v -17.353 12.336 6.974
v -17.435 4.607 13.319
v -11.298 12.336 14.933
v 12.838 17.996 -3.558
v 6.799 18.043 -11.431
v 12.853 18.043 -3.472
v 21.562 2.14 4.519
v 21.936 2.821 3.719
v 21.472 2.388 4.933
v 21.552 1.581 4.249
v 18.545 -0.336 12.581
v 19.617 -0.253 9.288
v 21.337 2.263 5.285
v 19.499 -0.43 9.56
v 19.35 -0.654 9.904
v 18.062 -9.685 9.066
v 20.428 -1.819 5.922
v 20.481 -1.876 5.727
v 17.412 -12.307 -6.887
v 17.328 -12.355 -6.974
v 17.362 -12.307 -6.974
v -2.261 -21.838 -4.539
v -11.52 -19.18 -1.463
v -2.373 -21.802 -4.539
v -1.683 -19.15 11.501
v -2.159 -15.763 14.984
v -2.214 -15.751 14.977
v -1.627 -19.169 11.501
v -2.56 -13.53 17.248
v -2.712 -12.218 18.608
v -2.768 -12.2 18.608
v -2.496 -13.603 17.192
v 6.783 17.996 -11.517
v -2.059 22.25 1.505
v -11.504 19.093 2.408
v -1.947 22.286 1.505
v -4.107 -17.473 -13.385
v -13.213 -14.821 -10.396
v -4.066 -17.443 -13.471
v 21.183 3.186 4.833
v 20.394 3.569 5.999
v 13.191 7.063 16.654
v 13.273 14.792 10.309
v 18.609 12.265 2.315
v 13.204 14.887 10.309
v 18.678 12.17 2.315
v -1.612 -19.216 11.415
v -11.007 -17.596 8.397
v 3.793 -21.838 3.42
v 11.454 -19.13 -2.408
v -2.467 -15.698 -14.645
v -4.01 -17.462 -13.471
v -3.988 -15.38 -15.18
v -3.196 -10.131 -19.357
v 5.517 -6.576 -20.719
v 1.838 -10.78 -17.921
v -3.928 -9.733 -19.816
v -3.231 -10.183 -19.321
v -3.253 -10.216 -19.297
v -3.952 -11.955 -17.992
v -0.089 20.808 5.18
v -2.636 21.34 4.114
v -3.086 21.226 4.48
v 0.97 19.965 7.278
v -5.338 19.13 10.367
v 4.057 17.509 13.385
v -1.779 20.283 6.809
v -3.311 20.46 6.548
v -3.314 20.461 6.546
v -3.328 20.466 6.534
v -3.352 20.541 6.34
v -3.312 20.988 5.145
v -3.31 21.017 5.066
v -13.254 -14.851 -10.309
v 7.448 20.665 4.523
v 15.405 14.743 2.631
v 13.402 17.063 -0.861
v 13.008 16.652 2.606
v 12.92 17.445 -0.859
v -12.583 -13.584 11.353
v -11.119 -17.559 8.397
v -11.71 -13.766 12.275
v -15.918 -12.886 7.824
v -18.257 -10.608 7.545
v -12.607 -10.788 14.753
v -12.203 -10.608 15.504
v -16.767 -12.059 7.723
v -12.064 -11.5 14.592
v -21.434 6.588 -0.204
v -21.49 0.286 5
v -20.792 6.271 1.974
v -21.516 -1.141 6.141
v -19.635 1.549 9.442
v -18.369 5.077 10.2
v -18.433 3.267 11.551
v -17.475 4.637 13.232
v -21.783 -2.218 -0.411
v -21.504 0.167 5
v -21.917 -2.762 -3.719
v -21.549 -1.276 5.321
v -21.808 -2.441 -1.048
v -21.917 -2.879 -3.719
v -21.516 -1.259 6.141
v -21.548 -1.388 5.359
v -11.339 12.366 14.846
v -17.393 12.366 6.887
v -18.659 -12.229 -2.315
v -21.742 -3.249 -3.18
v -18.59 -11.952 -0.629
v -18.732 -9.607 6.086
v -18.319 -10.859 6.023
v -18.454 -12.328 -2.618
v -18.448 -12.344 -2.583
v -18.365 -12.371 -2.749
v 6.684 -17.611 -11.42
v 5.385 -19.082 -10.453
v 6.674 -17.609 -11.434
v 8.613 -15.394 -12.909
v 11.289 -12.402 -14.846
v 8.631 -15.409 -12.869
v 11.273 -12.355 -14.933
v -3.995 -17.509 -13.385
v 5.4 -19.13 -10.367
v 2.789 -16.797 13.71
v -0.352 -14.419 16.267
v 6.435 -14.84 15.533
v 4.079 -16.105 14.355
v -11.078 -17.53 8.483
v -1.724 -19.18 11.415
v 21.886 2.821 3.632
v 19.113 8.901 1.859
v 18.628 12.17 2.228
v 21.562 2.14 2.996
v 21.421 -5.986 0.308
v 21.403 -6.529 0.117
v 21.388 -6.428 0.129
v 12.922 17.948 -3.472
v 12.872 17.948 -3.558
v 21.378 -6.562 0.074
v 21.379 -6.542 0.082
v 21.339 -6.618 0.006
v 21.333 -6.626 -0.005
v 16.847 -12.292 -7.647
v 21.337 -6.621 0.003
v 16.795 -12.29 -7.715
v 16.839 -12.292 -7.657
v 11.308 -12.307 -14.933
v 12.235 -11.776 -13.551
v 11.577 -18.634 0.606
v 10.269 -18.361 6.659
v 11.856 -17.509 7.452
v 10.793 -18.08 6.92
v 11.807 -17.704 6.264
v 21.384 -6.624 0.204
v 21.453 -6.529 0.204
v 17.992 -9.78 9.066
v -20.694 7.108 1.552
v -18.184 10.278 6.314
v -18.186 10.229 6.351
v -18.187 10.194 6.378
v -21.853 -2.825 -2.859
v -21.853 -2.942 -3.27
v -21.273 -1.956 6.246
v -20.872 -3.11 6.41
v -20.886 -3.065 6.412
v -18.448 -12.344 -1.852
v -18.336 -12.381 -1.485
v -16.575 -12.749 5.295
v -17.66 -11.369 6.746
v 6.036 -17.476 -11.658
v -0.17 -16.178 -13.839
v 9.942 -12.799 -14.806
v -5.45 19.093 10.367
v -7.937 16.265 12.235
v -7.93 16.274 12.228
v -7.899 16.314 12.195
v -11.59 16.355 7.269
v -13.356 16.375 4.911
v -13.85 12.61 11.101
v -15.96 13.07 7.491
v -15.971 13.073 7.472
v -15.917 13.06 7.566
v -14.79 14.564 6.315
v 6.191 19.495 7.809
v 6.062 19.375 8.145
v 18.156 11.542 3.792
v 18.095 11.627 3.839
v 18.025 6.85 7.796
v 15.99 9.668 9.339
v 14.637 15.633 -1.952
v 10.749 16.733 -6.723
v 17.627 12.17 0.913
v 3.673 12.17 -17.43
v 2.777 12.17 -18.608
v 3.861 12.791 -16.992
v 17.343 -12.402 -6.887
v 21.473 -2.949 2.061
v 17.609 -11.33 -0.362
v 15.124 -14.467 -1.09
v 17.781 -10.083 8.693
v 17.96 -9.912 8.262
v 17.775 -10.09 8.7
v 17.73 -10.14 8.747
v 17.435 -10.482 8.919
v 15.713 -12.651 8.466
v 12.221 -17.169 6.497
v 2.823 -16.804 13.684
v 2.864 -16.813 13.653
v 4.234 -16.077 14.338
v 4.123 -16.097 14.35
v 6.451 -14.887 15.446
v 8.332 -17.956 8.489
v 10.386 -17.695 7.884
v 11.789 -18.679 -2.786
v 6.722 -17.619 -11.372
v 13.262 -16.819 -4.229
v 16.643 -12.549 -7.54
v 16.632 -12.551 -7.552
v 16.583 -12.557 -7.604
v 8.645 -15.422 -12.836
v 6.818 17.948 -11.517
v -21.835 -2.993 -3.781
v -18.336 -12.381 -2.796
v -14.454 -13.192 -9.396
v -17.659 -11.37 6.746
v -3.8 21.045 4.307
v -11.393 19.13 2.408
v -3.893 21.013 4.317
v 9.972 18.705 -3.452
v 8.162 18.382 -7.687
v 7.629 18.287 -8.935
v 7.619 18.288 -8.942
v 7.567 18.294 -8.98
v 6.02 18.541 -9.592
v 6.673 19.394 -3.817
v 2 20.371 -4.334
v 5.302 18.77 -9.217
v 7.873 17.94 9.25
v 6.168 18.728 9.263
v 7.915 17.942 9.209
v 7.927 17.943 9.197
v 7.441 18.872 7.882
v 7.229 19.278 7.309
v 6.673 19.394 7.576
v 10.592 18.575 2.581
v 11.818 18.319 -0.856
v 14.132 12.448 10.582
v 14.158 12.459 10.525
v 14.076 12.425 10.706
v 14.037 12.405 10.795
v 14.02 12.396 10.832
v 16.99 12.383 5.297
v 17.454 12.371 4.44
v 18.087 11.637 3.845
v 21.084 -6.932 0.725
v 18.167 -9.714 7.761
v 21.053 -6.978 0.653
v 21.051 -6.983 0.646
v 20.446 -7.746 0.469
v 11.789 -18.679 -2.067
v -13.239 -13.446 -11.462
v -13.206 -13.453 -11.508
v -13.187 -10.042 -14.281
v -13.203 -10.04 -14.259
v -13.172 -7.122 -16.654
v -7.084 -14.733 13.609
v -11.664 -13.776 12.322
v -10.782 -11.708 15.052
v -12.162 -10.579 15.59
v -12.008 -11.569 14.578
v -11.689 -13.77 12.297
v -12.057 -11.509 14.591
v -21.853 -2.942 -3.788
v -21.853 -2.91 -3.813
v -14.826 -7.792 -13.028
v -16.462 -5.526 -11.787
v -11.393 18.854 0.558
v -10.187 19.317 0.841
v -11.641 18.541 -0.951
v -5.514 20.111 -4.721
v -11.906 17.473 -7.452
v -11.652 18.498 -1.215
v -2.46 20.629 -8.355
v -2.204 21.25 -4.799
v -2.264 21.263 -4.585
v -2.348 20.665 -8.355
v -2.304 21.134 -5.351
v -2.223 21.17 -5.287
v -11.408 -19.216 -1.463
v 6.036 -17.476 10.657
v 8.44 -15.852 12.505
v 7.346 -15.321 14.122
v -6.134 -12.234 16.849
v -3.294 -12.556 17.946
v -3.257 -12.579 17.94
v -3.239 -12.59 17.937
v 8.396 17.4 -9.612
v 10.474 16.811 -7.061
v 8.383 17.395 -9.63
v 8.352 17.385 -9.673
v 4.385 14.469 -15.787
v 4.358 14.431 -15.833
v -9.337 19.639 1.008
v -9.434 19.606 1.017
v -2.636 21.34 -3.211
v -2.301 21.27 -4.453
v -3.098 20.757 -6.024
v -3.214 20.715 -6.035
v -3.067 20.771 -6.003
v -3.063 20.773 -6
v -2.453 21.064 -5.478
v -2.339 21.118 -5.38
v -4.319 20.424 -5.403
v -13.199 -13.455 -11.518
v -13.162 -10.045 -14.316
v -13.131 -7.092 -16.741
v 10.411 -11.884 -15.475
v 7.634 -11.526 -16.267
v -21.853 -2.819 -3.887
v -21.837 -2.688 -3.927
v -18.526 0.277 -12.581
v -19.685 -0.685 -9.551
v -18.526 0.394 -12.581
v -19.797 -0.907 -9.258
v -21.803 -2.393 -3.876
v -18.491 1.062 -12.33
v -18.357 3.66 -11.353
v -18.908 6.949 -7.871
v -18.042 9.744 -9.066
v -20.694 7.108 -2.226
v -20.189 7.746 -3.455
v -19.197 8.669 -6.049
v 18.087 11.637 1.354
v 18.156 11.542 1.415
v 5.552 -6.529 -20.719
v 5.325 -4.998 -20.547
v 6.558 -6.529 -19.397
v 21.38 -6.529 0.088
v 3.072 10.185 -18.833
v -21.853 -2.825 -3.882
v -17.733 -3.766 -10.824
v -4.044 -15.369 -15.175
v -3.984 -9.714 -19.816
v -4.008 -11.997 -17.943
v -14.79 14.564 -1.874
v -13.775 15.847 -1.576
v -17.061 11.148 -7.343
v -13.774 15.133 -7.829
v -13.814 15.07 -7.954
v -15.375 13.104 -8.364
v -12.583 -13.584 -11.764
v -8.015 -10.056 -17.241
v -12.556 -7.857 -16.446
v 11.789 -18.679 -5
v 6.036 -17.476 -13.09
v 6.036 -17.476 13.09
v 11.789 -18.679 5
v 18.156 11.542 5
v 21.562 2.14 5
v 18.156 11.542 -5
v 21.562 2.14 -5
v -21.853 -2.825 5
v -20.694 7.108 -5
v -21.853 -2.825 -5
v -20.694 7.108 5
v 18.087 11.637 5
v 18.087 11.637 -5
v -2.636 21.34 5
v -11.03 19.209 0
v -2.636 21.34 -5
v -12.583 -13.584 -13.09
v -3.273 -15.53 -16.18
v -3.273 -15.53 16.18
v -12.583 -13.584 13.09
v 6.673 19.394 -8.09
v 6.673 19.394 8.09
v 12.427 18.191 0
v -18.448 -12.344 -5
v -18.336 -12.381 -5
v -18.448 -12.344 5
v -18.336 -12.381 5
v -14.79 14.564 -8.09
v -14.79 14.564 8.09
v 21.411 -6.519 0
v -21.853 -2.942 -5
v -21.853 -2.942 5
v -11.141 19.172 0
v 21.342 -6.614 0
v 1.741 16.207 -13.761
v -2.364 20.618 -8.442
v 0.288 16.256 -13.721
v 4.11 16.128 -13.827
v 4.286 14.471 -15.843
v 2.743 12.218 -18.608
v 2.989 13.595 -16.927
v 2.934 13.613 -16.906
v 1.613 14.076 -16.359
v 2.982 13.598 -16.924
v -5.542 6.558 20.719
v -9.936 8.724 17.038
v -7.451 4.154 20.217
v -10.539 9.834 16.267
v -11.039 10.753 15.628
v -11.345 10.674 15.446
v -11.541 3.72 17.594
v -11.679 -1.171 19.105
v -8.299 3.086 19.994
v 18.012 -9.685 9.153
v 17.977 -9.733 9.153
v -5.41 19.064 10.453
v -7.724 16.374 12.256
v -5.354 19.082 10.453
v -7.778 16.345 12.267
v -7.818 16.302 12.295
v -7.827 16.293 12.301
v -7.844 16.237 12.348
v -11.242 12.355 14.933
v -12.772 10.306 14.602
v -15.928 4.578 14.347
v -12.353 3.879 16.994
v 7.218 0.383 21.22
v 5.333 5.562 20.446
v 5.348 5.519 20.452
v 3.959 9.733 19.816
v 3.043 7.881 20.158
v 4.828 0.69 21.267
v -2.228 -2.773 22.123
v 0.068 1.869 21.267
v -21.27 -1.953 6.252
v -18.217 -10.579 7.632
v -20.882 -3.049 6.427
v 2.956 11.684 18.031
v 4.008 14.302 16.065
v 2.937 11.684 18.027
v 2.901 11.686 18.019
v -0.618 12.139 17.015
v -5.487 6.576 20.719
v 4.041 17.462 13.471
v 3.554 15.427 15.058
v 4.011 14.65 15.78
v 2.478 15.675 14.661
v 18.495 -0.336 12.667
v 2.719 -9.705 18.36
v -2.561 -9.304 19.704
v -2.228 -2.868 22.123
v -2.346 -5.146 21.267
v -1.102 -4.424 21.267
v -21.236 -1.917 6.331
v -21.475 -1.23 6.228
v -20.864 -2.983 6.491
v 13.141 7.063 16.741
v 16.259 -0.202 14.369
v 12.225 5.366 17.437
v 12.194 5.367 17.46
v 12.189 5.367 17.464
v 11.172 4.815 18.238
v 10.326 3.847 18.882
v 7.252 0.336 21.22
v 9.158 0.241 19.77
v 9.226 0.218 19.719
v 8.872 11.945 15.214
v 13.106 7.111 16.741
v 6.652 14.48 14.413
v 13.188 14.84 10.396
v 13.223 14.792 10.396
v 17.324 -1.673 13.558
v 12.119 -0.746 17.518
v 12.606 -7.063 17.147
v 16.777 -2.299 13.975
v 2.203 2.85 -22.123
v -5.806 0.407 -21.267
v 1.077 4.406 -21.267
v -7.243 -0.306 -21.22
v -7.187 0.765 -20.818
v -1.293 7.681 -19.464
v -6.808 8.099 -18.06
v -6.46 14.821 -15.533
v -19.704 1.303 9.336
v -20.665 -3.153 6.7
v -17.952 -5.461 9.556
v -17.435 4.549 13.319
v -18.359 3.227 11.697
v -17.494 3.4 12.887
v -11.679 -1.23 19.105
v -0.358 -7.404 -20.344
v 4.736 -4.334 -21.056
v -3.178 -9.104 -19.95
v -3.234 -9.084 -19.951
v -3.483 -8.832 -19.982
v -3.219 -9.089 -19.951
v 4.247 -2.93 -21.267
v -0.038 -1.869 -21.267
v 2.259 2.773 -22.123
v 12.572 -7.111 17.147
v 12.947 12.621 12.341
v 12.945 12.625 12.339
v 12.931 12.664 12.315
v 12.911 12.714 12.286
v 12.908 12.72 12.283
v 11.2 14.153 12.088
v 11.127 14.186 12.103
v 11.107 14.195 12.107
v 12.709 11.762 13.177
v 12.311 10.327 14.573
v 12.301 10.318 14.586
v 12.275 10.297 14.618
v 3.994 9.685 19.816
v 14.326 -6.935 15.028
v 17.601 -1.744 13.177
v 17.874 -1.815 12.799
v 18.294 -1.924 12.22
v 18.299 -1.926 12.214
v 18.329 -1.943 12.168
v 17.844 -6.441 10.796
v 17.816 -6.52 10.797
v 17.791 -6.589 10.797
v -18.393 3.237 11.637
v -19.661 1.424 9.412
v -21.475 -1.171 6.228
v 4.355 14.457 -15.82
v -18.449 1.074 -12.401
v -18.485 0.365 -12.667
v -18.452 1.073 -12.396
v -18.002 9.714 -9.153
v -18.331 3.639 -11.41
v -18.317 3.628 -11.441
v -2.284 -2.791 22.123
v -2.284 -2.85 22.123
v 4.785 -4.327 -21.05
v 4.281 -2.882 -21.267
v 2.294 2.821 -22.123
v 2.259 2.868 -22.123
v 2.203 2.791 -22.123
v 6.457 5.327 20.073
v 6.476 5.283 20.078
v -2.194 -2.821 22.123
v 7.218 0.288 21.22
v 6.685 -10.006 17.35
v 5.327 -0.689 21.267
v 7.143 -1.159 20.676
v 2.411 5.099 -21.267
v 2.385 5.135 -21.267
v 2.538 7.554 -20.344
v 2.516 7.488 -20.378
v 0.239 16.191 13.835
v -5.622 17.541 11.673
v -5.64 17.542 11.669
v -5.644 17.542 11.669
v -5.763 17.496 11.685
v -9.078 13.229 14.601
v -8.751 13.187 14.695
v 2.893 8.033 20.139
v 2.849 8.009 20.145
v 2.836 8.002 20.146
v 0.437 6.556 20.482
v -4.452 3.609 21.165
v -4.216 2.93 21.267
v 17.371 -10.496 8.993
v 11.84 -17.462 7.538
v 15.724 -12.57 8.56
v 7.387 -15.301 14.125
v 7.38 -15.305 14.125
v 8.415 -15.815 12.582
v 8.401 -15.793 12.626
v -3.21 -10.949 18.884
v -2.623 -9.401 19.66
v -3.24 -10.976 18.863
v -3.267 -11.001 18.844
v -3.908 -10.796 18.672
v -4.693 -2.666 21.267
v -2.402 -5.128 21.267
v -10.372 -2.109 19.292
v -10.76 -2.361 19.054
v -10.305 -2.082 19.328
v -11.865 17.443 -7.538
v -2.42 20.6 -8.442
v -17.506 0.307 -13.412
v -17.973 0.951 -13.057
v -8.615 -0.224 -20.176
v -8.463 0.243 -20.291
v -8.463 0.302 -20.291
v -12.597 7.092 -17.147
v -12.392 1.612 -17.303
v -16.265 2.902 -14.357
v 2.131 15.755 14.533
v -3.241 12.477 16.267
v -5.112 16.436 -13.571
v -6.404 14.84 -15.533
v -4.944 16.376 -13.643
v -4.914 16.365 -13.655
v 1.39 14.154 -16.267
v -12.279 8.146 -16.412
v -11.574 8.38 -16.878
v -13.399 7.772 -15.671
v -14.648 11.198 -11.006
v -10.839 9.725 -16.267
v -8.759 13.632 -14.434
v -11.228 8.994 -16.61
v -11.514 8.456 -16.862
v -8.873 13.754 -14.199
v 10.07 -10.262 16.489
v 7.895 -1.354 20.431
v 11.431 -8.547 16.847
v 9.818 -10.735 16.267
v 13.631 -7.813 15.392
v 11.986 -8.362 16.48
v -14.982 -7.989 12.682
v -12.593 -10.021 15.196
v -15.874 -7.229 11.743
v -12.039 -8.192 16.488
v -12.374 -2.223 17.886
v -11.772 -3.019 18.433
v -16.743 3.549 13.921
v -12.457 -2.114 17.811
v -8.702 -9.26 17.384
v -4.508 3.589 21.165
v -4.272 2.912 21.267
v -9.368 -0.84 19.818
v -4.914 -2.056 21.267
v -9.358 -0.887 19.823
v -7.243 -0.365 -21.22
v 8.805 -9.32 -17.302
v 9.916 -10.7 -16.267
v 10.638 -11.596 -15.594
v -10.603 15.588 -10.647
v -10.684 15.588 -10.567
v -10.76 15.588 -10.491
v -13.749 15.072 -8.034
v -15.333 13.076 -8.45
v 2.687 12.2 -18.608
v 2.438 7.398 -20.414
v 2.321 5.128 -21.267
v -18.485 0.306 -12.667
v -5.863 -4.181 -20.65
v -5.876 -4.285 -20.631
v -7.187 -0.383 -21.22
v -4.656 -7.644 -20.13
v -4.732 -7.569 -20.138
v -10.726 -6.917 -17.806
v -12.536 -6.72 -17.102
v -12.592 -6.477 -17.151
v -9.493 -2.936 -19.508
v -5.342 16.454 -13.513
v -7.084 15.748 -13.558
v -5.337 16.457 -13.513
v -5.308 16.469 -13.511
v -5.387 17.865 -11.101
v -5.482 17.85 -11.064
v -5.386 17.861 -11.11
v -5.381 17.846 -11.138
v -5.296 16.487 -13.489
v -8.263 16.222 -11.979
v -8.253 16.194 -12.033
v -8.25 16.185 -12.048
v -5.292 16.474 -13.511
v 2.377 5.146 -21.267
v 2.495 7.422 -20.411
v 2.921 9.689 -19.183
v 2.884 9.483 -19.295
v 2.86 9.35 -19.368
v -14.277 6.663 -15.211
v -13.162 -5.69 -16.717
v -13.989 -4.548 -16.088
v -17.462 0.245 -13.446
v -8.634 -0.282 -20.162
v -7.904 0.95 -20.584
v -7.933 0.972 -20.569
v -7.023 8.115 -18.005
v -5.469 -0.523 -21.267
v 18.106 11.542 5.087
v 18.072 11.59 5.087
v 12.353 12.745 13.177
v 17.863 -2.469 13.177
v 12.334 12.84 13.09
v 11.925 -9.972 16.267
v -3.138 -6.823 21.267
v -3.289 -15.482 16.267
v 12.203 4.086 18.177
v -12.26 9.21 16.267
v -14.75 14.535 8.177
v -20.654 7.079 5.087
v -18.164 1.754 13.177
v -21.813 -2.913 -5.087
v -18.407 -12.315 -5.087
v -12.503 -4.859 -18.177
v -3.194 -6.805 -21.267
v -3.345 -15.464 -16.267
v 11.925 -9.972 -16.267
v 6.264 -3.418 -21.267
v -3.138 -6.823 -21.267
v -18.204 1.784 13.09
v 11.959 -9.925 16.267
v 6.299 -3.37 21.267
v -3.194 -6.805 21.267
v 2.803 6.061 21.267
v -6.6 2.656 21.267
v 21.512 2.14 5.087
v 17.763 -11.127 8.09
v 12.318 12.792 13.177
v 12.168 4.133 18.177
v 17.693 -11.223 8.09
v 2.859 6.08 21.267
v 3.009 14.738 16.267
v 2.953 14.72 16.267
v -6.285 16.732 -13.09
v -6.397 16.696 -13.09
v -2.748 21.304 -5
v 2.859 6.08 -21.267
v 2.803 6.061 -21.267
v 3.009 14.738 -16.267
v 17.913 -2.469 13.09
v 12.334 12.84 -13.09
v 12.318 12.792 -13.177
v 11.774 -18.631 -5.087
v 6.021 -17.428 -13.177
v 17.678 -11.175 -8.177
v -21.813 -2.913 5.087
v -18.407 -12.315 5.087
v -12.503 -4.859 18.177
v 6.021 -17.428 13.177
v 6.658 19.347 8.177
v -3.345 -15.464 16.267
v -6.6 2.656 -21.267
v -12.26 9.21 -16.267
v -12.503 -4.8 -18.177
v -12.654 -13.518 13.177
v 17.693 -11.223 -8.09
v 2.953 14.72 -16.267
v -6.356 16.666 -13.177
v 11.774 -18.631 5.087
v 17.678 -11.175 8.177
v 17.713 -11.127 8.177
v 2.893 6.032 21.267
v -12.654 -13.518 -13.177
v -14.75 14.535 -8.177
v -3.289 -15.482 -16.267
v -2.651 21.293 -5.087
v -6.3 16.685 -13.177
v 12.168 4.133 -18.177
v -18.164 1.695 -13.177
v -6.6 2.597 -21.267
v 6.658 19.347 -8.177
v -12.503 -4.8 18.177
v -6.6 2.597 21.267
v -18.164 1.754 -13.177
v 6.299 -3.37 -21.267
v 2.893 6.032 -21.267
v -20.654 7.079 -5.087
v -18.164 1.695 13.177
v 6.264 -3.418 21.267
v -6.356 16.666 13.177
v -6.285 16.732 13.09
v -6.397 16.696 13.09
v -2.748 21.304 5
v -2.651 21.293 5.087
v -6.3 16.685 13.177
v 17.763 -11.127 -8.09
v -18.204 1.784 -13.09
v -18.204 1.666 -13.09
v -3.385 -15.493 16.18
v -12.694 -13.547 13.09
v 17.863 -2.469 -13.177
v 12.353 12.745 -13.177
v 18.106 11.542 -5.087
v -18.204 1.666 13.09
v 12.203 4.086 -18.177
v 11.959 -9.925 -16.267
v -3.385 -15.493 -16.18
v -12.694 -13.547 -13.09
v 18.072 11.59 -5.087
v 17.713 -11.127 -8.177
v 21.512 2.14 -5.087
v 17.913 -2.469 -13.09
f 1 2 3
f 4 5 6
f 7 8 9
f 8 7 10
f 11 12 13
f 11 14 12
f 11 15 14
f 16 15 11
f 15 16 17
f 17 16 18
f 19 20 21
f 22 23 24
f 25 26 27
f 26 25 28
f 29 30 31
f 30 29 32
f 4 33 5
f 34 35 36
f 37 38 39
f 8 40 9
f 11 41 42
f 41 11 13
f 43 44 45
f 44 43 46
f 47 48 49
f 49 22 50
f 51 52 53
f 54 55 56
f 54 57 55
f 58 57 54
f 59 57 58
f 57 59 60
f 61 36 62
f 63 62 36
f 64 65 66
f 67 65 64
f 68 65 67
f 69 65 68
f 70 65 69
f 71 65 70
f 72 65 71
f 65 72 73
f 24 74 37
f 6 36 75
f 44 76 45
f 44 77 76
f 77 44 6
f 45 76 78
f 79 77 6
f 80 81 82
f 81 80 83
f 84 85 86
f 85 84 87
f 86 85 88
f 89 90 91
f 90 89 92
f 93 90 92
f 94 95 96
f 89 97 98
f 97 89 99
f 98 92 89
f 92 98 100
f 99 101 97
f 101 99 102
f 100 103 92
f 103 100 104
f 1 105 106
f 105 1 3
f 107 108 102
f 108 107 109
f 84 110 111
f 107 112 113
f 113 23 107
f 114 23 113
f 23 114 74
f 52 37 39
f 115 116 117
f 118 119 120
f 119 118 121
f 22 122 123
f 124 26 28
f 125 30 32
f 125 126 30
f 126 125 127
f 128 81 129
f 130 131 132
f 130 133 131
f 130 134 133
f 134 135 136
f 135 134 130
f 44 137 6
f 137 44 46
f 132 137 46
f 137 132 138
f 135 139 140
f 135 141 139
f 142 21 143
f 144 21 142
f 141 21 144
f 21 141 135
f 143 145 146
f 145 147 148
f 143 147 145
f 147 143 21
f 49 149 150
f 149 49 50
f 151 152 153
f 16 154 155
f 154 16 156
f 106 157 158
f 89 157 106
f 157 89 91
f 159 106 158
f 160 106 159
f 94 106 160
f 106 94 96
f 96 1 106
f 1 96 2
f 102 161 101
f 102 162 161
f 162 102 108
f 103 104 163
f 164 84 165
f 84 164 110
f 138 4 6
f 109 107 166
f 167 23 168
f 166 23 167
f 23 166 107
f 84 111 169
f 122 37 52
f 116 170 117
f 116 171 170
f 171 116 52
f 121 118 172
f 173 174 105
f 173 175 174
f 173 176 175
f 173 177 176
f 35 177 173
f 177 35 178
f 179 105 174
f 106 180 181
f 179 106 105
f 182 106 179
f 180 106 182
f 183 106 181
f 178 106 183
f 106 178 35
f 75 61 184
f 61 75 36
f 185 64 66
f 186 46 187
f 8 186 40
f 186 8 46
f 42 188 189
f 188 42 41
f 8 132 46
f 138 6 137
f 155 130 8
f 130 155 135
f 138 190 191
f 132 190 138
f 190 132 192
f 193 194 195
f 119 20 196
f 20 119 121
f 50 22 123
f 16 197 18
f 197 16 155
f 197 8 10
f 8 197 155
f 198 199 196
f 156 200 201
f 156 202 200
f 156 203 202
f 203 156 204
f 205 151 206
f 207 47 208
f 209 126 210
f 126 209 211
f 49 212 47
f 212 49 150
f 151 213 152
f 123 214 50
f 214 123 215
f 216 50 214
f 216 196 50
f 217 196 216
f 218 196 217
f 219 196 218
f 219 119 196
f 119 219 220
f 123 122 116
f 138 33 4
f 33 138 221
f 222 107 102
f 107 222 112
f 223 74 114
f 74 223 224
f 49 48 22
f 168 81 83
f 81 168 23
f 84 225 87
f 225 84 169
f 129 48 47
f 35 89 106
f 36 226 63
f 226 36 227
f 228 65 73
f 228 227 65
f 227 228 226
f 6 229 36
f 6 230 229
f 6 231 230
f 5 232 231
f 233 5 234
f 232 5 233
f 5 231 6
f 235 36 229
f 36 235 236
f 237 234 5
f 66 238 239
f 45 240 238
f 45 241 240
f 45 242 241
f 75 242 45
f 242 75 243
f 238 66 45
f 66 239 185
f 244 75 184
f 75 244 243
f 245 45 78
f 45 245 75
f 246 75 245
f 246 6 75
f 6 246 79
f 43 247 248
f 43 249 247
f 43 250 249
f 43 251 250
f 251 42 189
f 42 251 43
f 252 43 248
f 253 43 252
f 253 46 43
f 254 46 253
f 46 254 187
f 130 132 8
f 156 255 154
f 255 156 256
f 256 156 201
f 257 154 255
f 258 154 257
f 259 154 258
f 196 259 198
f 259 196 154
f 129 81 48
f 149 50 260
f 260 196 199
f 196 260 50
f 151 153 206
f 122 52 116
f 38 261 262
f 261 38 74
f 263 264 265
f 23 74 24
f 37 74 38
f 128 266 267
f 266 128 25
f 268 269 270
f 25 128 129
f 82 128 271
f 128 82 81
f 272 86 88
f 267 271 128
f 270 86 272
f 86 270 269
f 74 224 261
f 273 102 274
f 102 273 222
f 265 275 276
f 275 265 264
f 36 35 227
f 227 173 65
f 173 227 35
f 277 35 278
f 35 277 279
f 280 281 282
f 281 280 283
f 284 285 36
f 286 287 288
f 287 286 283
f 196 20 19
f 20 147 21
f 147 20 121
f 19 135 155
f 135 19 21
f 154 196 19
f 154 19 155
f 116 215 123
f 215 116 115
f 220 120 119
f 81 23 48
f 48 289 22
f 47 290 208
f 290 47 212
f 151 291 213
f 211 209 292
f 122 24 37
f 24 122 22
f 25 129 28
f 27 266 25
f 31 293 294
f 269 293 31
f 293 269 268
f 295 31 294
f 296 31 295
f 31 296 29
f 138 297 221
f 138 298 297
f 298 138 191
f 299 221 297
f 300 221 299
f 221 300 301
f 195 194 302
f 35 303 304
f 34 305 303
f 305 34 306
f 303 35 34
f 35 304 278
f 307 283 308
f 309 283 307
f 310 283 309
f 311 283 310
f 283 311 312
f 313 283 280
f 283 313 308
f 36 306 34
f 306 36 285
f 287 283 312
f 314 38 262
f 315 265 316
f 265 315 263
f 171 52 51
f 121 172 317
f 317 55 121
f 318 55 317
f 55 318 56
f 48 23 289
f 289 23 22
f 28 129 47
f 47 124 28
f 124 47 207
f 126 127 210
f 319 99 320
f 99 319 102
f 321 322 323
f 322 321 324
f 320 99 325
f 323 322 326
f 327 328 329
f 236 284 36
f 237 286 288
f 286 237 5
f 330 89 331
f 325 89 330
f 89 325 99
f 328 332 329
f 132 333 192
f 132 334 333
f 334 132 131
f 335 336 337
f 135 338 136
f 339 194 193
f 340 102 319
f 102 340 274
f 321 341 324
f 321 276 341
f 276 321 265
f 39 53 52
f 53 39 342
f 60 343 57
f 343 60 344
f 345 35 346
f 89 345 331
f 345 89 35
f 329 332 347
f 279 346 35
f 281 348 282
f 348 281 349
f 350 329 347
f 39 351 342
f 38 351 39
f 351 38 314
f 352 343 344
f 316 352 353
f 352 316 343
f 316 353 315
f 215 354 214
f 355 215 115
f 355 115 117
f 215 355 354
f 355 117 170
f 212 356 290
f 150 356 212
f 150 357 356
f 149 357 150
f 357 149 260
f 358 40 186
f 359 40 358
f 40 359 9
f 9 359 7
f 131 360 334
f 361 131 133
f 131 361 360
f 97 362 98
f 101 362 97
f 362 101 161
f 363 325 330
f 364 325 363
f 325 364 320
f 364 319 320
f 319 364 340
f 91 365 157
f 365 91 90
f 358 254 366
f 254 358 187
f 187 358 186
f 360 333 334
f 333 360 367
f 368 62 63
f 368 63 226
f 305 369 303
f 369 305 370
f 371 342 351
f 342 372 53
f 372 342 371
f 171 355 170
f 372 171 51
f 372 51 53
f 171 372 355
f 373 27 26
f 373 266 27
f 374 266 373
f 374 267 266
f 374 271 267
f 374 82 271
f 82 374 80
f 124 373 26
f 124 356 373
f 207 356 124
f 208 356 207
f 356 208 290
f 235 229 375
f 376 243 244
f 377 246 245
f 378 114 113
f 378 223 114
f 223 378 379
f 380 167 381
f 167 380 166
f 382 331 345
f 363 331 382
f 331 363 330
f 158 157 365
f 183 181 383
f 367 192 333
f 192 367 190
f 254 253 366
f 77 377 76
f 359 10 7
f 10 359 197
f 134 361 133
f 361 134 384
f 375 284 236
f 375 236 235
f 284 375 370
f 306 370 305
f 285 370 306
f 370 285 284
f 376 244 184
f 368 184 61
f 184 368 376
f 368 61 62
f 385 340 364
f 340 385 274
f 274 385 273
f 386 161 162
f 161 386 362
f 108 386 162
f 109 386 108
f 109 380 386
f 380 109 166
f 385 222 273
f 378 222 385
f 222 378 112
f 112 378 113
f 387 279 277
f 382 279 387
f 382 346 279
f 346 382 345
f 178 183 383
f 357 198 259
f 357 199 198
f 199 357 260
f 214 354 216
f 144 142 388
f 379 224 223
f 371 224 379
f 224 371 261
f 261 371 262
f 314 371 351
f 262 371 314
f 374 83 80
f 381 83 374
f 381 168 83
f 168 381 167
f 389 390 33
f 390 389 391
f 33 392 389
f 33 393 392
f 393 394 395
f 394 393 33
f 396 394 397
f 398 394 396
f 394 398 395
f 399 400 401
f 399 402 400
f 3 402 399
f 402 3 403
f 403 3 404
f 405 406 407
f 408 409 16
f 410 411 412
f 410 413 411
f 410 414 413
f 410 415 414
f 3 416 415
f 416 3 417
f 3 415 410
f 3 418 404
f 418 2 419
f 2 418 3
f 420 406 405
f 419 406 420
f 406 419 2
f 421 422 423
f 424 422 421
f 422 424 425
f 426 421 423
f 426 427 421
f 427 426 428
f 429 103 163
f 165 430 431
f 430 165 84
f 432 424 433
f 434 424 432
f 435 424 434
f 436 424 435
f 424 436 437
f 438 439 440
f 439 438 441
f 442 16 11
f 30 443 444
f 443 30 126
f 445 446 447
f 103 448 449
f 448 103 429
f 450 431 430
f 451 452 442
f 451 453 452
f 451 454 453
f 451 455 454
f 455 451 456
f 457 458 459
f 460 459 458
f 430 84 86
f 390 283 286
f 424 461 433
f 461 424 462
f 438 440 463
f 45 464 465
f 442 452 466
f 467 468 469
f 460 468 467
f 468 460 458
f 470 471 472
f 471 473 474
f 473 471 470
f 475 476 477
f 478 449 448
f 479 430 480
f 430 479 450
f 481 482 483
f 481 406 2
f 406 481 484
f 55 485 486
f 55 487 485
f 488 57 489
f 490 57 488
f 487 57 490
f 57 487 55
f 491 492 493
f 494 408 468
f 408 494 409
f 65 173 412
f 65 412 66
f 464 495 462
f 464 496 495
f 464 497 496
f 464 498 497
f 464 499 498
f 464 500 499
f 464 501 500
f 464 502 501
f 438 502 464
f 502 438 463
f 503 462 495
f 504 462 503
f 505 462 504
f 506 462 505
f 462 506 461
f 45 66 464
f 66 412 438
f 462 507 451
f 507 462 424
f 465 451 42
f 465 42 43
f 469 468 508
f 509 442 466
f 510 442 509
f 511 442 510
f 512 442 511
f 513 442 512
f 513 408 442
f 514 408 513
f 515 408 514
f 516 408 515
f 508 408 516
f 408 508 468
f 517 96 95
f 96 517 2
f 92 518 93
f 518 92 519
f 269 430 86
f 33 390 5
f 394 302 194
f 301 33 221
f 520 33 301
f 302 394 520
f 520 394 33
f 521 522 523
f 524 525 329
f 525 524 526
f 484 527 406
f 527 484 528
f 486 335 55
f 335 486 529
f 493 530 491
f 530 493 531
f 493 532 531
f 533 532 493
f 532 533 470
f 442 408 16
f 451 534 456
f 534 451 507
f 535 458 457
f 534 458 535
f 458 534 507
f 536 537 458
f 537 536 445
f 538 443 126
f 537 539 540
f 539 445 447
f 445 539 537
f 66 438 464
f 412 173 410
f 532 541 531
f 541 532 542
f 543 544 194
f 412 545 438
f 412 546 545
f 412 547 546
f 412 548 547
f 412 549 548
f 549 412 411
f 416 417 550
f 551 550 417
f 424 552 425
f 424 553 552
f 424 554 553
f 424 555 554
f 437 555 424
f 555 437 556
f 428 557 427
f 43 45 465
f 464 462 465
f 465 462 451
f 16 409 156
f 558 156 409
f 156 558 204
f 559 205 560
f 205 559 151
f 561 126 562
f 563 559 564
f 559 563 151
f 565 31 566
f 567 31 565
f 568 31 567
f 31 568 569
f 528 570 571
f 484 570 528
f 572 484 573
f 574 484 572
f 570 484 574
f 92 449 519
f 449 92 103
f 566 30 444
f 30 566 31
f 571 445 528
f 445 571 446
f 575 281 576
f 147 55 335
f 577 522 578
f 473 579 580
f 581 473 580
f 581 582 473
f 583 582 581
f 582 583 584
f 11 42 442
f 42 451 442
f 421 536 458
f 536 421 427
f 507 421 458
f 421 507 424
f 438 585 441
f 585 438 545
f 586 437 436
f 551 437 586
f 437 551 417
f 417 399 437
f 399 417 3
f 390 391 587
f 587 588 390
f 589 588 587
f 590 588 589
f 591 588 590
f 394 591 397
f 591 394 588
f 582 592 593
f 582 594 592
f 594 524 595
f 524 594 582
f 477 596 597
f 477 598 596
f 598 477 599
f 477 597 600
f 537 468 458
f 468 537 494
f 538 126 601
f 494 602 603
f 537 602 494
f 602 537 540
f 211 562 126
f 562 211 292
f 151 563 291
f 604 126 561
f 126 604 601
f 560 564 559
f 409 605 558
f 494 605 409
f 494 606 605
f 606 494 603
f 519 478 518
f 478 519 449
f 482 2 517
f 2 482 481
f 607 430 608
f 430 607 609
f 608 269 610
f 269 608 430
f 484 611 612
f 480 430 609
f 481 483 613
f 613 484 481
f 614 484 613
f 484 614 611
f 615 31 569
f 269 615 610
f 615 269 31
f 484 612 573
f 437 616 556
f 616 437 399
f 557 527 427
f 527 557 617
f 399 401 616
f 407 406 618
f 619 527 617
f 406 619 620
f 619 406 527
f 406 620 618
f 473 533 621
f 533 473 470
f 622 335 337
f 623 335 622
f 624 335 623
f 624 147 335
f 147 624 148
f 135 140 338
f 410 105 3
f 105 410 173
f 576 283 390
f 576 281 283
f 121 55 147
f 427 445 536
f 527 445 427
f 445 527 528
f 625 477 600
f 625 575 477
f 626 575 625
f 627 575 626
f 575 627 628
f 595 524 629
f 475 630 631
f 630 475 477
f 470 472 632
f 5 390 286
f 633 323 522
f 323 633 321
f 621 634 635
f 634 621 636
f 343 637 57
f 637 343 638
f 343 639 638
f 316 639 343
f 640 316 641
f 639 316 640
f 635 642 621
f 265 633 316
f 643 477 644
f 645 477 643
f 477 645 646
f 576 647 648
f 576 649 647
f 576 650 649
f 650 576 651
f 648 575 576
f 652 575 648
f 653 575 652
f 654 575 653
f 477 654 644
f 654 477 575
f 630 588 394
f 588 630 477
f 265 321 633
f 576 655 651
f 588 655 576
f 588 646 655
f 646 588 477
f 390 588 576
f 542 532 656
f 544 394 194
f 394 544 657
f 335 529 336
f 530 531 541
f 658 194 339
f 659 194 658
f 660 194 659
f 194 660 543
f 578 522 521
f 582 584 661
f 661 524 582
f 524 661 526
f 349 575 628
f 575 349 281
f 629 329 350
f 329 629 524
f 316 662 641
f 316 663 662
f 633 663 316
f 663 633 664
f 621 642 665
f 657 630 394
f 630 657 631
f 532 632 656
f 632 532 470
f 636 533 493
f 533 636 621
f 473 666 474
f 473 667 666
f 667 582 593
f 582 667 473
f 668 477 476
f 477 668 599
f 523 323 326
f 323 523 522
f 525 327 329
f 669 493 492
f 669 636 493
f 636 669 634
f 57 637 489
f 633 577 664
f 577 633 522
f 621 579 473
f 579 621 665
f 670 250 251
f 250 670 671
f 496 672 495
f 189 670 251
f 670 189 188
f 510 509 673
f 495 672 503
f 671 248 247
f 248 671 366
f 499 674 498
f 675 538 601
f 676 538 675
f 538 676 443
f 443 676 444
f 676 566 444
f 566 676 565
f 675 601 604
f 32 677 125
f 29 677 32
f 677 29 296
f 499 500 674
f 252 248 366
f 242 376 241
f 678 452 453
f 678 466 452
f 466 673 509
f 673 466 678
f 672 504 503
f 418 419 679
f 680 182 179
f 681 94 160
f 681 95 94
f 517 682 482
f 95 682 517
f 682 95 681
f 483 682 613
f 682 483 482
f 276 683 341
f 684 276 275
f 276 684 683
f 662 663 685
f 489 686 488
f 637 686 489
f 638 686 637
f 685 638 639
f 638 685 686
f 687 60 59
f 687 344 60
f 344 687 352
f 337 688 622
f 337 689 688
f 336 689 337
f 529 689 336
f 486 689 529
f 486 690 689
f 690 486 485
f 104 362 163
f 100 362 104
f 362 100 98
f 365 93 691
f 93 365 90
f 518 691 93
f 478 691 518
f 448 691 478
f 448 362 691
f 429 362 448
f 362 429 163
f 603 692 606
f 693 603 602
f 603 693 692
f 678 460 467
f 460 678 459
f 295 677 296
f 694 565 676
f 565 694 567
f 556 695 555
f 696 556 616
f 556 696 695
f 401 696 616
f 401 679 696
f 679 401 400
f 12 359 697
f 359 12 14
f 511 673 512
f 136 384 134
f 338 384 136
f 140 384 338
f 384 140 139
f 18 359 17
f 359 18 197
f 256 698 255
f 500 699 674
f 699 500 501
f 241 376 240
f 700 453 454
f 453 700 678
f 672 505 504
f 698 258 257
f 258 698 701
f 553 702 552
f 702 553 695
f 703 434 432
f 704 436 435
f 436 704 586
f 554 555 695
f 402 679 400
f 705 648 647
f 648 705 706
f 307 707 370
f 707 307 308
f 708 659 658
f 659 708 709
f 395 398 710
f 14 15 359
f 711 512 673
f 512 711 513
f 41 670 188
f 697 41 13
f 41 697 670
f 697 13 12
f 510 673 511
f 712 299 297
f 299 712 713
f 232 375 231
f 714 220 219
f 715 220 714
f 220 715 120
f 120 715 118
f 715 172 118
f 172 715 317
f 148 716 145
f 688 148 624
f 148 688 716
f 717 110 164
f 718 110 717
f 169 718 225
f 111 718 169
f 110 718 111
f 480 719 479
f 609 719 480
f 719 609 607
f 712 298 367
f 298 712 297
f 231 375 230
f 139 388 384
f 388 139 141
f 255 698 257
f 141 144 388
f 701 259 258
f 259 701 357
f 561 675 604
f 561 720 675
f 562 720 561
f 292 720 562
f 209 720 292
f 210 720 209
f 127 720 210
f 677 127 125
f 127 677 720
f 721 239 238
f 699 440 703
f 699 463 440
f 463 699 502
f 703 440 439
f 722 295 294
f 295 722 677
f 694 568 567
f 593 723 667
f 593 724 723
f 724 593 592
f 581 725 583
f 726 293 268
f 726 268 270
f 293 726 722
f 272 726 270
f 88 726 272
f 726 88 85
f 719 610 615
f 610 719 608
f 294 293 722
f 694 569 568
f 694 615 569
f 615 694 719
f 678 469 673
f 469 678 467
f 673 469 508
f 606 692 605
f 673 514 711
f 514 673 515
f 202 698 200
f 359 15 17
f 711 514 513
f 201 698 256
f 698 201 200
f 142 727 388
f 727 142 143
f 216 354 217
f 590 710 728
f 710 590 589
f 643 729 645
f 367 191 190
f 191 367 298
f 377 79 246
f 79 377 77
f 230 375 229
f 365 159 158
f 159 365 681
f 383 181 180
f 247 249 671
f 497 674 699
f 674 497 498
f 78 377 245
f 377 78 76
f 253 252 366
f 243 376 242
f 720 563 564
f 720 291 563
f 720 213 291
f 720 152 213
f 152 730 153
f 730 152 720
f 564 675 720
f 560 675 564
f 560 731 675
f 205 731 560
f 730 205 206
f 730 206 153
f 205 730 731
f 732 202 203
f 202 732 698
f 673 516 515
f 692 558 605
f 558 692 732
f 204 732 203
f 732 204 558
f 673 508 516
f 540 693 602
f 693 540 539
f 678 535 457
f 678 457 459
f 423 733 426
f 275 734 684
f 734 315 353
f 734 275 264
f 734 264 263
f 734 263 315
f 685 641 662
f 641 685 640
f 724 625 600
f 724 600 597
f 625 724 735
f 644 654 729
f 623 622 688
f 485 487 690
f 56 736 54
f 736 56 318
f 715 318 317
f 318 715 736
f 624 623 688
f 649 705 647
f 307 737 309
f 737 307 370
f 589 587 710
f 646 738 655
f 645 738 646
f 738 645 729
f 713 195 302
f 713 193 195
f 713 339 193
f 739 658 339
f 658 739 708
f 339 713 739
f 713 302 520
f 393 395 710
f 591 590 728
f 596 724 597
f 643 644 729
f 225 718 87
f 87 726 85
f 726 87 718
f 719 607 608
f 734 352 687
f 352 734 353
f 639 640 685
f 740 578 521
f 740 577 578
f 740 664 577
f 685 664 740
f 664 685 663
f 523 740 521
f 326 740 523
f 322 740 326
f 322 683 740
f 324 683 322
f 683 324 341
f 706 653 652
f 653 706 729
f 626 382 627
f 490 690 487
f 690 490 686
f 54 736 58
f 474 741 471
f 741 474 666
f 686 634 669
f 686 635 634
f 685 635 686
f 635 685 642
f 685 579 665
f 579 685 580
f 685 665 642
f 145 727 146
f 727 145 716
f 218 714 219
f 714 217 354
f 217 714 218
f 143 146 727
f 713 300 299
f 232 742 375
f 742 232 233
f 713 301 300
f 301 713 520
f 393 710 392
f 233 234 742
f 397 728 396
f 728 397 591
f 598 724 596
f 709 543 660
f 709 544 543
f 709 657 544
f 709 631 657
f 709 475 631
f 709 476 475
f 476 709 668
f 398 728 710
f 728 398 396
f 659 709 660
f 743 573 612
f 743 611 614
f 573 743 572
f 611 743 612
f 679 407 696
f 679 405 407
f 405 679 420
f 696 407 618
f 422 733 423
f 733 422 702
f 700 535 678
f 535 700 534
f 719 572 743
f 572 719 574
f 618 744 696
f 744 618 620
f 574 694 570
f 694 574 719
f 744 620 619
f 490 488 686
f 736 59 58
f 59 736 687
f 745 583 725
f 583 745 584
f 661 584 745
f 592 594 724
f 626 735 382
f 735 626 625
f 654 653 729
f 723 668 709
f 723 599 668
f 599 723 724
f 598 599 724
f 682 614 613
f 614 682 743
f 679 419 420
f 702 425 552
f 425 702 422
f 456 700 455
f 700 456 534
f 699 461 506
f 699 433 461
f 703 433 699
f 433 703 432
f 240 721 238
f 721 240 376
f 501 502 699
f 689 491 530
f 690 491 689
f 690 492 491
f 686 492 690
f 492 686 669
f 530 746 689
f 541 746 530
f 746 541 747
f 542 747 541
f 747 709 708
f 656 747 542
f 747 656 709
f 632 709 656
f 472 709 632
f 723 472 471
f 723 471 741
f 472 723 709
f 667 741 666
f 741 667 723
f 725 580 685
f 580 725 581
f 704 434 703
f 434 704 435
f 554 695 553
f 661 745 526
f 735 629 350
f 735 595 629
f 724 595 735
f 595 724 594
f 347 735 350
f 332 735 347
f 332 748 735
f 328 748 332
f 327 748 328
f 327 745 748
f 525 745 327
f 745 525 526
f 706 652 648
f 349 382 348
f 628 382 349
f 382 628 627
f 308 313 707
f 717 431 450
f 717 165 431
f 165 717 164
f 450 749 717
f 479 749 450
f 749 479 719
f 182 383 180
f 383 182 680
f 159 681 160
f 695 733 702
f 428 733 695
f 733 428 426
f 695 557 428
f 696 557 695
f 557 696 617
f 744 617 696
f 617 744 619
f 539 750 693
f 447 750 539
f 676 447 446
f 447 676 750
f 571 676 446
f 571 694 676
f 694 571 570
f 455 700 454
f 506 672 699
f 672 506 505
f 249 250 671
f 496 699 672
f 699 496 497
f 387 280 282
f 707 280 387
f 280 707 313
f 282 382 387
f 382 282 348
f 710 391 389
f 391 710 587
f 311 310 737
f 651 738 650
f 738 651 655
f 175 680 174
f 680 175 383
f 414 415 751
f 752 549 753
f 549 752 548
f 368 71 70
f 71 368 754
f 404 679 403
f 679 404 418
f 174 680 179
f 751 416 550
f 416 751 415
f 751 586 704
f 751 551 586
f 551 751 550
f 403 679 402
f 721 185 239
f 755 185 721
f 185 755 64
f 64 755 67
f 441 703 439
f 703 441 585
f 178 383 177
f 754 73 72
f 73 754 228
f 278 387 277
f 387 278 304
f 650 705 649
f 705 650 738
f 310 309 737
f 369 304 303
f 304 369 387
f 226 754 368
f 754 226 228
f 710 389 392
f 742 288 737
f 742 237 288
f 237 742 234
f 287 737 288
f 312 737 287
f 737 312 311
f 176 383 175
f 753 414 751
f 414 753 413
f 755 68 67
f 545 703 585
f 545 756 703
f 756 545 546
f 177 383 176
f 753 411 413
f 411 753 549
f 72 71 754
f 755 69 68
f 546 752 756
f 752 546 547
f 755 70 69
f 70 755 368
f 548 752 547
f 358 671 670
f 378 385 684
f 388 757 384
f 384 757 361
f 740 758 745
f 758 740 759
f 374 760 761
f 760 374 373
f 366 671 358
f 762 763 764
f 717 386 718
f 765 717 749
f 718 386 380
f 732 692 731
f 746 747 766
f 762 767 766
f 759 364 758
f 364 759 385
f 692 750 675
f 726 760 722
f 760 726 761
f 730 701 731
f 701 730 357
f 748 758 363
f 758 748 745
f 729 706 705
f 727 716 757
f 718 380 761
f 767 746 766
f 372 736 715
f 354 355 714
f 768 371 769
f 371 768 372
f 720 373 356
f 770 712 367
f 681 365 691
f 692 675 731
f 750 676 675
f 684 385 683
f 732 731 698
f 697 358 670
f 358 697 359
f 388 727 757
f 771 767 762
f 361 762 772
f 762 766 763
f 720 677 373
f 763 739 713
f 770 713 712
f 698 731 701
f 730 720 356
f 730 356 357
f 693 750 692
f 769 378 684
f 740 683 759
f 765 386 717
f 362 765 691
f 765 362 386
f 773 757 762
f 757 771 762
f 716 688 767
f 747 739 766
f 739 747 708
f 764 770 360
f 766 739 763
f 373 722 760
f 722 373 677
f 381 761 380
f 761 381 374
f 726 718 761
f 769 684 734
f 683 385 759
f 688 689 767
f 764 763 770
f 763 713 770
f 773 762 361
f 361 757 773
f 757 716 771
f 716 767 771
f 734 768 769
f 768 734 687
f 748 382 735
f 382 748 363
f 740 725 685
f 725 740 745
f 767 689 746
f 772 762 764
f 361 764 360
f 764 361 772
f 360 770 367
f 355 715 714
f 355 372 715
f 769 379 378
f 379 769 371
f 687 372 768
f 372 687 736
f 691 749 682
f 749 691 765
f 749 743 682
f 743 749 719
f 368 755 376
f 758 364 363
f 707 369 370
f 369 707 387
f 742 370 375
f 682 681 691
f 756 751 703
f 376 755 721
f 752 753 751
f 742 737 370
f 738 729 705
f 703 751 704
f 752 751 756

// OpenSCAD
// Auto-generated OpenSCAD file

    inner_points = 10*[[-1.836699607587161, -1.2285699091430797, -0.5000000000000988], [2.146184519456955, 0.21396464522266723, -0.4999999999998816], [-2.1772358223098434, -0.2883385086557597, -0.5000000000001185], [1.8056483047342733, 1.1541960457099871, -0.4999999999999012], [-1.8366996075872162, -1.2285699091430788, 0.4999999999999012], [2.1461845194569, 0.21396464522266823, 0.5000000000001185], [-2.1772358223098984, -0.2883385086557587, 0.4999999999998816], [1.8056483047342182, 1.154196045709988, 0.5000000000000988], [-0.3153732443086741, -0.677570739321549, -2.118033988749911], [0.6248581561786458, -0.33703452459886674, -2.1180339887498594], [-0.6559094590313566, 0.2626606611657711, -2.1180339887499304], [0.2843219414559636, 0.6031968758884533, -2.118033988749879], [-0.3153732443089066, -0.6775707393215448, 2.118033988749879], [0.6248581561784134, -0.3370345245988626, 2.1180339887499304], [-0.6559094590315889, 0.26266066116577524, 2.1180339887498594], [0.2843219414557311, 0.6031968758884575, 2.118033988749911], [1.1758573260000895, -1.8583608878772635, -0.49999999999993283], [-2.061336407064101, 0.7049224467561074, -0.500000000000113], [-0.2666772283656575, 2.124523239166853, -0.5000000000000159], [1.1758573260000345, -1.8583608878772626, 0.5000000000000672], [-2.061336407064156, 0.7049224467561084, 0.499999999999887], [-0.26667722836571245, 2.124523239166854, 0.49999999999998407], [2.131136622972155, -0.6519300139659565, 1.184490416110162e-13], [-1.1060571100920356, 1.911353320667414, -6.17776737251443e-14], [1.2396012384279405, 1.809627749799762, 6.709282429360799e-14], [-1.2463045333092315, -0.4829546239886549, -1.8090169943750145], [1.2152532304564871, 0.40858076055555986, -1.8090169943748804], [-1.24630453330943, -0.48295462398865135, 1.8090169943748804], [1.2152532304562886, 0.4085807605555634, 1.8090169943750145], [0.6005101482070487, -1.7380815138430665, -1.309016994374912], [-0.6315614510598482, 1.6637076504099721, -1.309016994374983], [0.6005101482069051, -1.7380815138430639, 1.309016994374983], [-0.6315614510599918, 1.6637076504099748, 1.309016994374912], [-1.2613524297940315, -1.3488492831772787, -1.3090169943750145], [1.7813002967627651, -0.24685094353421377, -1.3090169943748486], [-1.8123515996155641, 0.17247708010111973, -1.3090169943750463], [1.2303011269412325, 1.2744754197441843, -1.3090169943748804], [-1.2613524297941754, -1.348849283177276, 1.3090169943748804], [1.7813002967626212, -0.24685094353421122, 1.3090169943750463], [-1.812351599615708, 0.17247708010112228, 1.3090169943748486], [1.2303011269410886, 1.274475419744187, 1.3090169943750145], [-0.3304211407934745, -1.543465398510173, -1.6180339887499107], [1.190905222484924, -0.9924662286886403, -1.6180339887498278], [-1.2219565253376892, 0.9180923652555457, -1.618033988749962], [0.2993698379407091, 1.469091535077078, -1.6180339887498791], [-0.3304211407936521, -1.5434653985101696, 1.6180339887498791], [1.1909052224847463, -0.9924662286886372, 1.618033988749962], [-1.2219565253378668, 0.9180923652555488, 1.6180339887498278], [0.2993698379405315, 1.4690915350770812, 1.6180339887499107], [1.7662524002779645, -1.1127456027228375, -0.8090169943748485], [-1.4709413327862264, 1.450537731910533, -0.8090169943750288], [0.6642540606348998, 1.929907123833959, -0.809016994374912], [1.7662524002778757, -1.112745602722836, 0.8090169943750464], [-1.4709413327863152, 1.4505377319105348, 0.8090169943748661], [0.664254060634811, 1.9299071238339605, 0.8090169943749829]];

    outer_points = 10*[[1.12576446959325, -1.2306993530072232, -1.4846216484373451], [-1.1423570636659763, 1.9034473733016377, 0.24078291813028324], [0.5369108131957494, -1.9034473733016377, -1.0366691146380147], [-1.731210720063477, 1.2306993530072232, 0.6887354519296138], [1.731210720063477, -1.2306993530072232, -0.6887354519296138], [-0.5369108131957494, 1.9034473733016377, 1.0366691146380147], [1.1423570636659763, -1.9034473733016377, -0.24078291813028324], [-1.12576446959325, 1.2306993530072232, 1.4846216484373451], [-0.7202134771182586, -0.03356182928645268, -2.113346665479179], [-1.2556443401984863, 0.7063098495808671, -1.7060338990806576], [-1.3090671335157593, -0.7063098495808671, -1.6653941316798484], [-1.8444979965959871, 0.03356182928645268, -1.2580813652813272], [1.8444979965959871, -0.03356182928645268, 1.2580813652813272], [1.3090671335157593, 0.7063098495808671, 1.6653941316798484], [1.2556443401984863, -0.7063098495808671, 1.7060338990806576], [0.7202134771182586, 0.03356182928645268, 2.113346665479179], [0.6767735018743313, 1.7948390122814335, -1.1430654069882231], [-0.22922787002565134, -2.174290821629481, -0.4538523813764673], [-1.8176506154247858, -1.0549673334141139, 0.7544919768790133], [1.2822197523445582, 1.7948390122814335, -0.3471792104804918], [0.37621838044457556, -2.174290821629481, 0.34203381513126413], [-1.2122043649545589, -1.0549673334141139, 1.5503781733867446], [-0.1977840872008227, 2.2190790322251956, 0.1504582370241563], [-1.1037854591008052, -1.7500508016857188, 0.8396712626359121], [-1.739422974049132, 0.4578018492302146, 1.32321319585744], [-0.394374457196368, -0.9685046012940453, -1.9729509883124625], [-1.796150655366095, 0.9685046012940453, -0.9065923218293875], [1.796150655366095, -0.9685046012940453, 0.9065923218293875], [0.394374457196368, 0.9685046012940453, 1.9729509883124625], [0.27270684057678685, 1.2170126016446976, -1.8521823031333664], [-1.8577857026690232, -1.2170126016446976, -0.23147481050075225], [1.8577857026690232, 1.2170126016446976, 0.23147481050075225], [-0.27270684057678685, -1.2170126016446976, 1.8521823031333664], [0.5501985192687854, -0.6528729423704873, -2.0632756694185894], [-1.1824921509102135, 1.741402105071054, -0.7451838692494821], [-0.4025867111820227, -1.741402105071054, -1.3384732443846366], [-2.1352773813610217, 0.6528729423704873, -0.020381444215529232], [2.1352773813610217, -0.6528729423704873, 0.020381444215529232], [0.4025867111820227, 1.741402105071054, 1.3384732443846366], [1.1824921509102135, -1.741402105071054, 0.7451838692494821], [-0.5501985192687854, 0.6528729423704873, 2.0632756694185894], [0.22435949934689503, 0.28206982963710514, -2.203671346585306], [-0.6419858357426045, 1.4792073533578758, -1.5446254465007523], [-1.317279387501414, -1.4792073533578758, -1.0309163877520224], [-2.1836247225909133, -0.28206982963710514, -0.3718704876674688], [2.1836247225909133, 0.28206982963710514, 0.3718704876674688], [1.317279387501414, 1.4792073533578758, 1.0309163877520224], [0.6419858357426045, -1.4792073533578758, 1.5446254465007523], [-0.22435949934689503, -0.28206982963710514, 2.203671346585306], [-0.2379191744450599, 2.057033763994612, -0.8355085503556091], [-1.1439205463450426, -1.9120960699163028, -0.1462955247438532], [-2.1434896353466764, -0.1200245614065214, 0.6140962997122967], [0.7417134371769494, 2.057033763994612, 0.45226236677077825], [-0.16428793472303332, -1.9120960699163028, 1.1414753923825343], [-1.1638570237246673, -0.1200245614065214, 1.901867216838684]];

    // Convex hull for inner set (I)
    module inner_hull() {
        hull() {
            for (p = inner_points) {
                translate(p) sphere(r=0.1);
            }
        }
    }

    // Convex hull for outer set (O) minus inner hull (O \ I)
    module outer_minus_inner() {
        difference() {
            hull() {
                for (p = outer_points) {
                    translate(p) sphere(r=0.1);
                }
            }
            inner_hull(); // Subtract inner hull
        }
    }

    // Convex hull for outer set (O) minus all translated inner hulls
    module outer_minus_AllTranslationInner() {
        difference() {
            hull() {
                for (p = outer_points) {
                    translate(p) sphere(r=0.1);
                }
            }
            hull() {
                translate([0,0,50]) inner_hull();
                translate([0,0,-50]) inner_hull();
            }; // Subtract translated inner hulls
        }
    }

    // Difference between outer_minus_inner and outer_minus_AllTranslationInner
    module outer_minus_inner_diff() {
        difference() {
            // Outer minus inner
            difference() {
                hull() {
                    for (p = outer_points) {
                        translate(p) sphere(r=0.1);
                    }
                }
                inner_hull();
            }

            // Subtract Outer minus AllTranslationInner
            difference() {
                hull() {
                    for (p = outer_points) {
                        translate(p) sphere(r=0.1);
                    }
                }
                hull() {
                    translate([0,0,50]) inner_hull();
                    translate([0,0,-50]) inner_hull();
                };
            }
        }
    }

    // Rendering all with colors applied
    color([1, 0, 0, 0.5]) inner_hull(); // Transparent red
    color([0, 1, 0, 1]) outer_minus_AllTranslationInner(); // Opaque green
    color([1, 1, 0, 1]) outer_minus_inner_diff(); // Opaque yellow
    
